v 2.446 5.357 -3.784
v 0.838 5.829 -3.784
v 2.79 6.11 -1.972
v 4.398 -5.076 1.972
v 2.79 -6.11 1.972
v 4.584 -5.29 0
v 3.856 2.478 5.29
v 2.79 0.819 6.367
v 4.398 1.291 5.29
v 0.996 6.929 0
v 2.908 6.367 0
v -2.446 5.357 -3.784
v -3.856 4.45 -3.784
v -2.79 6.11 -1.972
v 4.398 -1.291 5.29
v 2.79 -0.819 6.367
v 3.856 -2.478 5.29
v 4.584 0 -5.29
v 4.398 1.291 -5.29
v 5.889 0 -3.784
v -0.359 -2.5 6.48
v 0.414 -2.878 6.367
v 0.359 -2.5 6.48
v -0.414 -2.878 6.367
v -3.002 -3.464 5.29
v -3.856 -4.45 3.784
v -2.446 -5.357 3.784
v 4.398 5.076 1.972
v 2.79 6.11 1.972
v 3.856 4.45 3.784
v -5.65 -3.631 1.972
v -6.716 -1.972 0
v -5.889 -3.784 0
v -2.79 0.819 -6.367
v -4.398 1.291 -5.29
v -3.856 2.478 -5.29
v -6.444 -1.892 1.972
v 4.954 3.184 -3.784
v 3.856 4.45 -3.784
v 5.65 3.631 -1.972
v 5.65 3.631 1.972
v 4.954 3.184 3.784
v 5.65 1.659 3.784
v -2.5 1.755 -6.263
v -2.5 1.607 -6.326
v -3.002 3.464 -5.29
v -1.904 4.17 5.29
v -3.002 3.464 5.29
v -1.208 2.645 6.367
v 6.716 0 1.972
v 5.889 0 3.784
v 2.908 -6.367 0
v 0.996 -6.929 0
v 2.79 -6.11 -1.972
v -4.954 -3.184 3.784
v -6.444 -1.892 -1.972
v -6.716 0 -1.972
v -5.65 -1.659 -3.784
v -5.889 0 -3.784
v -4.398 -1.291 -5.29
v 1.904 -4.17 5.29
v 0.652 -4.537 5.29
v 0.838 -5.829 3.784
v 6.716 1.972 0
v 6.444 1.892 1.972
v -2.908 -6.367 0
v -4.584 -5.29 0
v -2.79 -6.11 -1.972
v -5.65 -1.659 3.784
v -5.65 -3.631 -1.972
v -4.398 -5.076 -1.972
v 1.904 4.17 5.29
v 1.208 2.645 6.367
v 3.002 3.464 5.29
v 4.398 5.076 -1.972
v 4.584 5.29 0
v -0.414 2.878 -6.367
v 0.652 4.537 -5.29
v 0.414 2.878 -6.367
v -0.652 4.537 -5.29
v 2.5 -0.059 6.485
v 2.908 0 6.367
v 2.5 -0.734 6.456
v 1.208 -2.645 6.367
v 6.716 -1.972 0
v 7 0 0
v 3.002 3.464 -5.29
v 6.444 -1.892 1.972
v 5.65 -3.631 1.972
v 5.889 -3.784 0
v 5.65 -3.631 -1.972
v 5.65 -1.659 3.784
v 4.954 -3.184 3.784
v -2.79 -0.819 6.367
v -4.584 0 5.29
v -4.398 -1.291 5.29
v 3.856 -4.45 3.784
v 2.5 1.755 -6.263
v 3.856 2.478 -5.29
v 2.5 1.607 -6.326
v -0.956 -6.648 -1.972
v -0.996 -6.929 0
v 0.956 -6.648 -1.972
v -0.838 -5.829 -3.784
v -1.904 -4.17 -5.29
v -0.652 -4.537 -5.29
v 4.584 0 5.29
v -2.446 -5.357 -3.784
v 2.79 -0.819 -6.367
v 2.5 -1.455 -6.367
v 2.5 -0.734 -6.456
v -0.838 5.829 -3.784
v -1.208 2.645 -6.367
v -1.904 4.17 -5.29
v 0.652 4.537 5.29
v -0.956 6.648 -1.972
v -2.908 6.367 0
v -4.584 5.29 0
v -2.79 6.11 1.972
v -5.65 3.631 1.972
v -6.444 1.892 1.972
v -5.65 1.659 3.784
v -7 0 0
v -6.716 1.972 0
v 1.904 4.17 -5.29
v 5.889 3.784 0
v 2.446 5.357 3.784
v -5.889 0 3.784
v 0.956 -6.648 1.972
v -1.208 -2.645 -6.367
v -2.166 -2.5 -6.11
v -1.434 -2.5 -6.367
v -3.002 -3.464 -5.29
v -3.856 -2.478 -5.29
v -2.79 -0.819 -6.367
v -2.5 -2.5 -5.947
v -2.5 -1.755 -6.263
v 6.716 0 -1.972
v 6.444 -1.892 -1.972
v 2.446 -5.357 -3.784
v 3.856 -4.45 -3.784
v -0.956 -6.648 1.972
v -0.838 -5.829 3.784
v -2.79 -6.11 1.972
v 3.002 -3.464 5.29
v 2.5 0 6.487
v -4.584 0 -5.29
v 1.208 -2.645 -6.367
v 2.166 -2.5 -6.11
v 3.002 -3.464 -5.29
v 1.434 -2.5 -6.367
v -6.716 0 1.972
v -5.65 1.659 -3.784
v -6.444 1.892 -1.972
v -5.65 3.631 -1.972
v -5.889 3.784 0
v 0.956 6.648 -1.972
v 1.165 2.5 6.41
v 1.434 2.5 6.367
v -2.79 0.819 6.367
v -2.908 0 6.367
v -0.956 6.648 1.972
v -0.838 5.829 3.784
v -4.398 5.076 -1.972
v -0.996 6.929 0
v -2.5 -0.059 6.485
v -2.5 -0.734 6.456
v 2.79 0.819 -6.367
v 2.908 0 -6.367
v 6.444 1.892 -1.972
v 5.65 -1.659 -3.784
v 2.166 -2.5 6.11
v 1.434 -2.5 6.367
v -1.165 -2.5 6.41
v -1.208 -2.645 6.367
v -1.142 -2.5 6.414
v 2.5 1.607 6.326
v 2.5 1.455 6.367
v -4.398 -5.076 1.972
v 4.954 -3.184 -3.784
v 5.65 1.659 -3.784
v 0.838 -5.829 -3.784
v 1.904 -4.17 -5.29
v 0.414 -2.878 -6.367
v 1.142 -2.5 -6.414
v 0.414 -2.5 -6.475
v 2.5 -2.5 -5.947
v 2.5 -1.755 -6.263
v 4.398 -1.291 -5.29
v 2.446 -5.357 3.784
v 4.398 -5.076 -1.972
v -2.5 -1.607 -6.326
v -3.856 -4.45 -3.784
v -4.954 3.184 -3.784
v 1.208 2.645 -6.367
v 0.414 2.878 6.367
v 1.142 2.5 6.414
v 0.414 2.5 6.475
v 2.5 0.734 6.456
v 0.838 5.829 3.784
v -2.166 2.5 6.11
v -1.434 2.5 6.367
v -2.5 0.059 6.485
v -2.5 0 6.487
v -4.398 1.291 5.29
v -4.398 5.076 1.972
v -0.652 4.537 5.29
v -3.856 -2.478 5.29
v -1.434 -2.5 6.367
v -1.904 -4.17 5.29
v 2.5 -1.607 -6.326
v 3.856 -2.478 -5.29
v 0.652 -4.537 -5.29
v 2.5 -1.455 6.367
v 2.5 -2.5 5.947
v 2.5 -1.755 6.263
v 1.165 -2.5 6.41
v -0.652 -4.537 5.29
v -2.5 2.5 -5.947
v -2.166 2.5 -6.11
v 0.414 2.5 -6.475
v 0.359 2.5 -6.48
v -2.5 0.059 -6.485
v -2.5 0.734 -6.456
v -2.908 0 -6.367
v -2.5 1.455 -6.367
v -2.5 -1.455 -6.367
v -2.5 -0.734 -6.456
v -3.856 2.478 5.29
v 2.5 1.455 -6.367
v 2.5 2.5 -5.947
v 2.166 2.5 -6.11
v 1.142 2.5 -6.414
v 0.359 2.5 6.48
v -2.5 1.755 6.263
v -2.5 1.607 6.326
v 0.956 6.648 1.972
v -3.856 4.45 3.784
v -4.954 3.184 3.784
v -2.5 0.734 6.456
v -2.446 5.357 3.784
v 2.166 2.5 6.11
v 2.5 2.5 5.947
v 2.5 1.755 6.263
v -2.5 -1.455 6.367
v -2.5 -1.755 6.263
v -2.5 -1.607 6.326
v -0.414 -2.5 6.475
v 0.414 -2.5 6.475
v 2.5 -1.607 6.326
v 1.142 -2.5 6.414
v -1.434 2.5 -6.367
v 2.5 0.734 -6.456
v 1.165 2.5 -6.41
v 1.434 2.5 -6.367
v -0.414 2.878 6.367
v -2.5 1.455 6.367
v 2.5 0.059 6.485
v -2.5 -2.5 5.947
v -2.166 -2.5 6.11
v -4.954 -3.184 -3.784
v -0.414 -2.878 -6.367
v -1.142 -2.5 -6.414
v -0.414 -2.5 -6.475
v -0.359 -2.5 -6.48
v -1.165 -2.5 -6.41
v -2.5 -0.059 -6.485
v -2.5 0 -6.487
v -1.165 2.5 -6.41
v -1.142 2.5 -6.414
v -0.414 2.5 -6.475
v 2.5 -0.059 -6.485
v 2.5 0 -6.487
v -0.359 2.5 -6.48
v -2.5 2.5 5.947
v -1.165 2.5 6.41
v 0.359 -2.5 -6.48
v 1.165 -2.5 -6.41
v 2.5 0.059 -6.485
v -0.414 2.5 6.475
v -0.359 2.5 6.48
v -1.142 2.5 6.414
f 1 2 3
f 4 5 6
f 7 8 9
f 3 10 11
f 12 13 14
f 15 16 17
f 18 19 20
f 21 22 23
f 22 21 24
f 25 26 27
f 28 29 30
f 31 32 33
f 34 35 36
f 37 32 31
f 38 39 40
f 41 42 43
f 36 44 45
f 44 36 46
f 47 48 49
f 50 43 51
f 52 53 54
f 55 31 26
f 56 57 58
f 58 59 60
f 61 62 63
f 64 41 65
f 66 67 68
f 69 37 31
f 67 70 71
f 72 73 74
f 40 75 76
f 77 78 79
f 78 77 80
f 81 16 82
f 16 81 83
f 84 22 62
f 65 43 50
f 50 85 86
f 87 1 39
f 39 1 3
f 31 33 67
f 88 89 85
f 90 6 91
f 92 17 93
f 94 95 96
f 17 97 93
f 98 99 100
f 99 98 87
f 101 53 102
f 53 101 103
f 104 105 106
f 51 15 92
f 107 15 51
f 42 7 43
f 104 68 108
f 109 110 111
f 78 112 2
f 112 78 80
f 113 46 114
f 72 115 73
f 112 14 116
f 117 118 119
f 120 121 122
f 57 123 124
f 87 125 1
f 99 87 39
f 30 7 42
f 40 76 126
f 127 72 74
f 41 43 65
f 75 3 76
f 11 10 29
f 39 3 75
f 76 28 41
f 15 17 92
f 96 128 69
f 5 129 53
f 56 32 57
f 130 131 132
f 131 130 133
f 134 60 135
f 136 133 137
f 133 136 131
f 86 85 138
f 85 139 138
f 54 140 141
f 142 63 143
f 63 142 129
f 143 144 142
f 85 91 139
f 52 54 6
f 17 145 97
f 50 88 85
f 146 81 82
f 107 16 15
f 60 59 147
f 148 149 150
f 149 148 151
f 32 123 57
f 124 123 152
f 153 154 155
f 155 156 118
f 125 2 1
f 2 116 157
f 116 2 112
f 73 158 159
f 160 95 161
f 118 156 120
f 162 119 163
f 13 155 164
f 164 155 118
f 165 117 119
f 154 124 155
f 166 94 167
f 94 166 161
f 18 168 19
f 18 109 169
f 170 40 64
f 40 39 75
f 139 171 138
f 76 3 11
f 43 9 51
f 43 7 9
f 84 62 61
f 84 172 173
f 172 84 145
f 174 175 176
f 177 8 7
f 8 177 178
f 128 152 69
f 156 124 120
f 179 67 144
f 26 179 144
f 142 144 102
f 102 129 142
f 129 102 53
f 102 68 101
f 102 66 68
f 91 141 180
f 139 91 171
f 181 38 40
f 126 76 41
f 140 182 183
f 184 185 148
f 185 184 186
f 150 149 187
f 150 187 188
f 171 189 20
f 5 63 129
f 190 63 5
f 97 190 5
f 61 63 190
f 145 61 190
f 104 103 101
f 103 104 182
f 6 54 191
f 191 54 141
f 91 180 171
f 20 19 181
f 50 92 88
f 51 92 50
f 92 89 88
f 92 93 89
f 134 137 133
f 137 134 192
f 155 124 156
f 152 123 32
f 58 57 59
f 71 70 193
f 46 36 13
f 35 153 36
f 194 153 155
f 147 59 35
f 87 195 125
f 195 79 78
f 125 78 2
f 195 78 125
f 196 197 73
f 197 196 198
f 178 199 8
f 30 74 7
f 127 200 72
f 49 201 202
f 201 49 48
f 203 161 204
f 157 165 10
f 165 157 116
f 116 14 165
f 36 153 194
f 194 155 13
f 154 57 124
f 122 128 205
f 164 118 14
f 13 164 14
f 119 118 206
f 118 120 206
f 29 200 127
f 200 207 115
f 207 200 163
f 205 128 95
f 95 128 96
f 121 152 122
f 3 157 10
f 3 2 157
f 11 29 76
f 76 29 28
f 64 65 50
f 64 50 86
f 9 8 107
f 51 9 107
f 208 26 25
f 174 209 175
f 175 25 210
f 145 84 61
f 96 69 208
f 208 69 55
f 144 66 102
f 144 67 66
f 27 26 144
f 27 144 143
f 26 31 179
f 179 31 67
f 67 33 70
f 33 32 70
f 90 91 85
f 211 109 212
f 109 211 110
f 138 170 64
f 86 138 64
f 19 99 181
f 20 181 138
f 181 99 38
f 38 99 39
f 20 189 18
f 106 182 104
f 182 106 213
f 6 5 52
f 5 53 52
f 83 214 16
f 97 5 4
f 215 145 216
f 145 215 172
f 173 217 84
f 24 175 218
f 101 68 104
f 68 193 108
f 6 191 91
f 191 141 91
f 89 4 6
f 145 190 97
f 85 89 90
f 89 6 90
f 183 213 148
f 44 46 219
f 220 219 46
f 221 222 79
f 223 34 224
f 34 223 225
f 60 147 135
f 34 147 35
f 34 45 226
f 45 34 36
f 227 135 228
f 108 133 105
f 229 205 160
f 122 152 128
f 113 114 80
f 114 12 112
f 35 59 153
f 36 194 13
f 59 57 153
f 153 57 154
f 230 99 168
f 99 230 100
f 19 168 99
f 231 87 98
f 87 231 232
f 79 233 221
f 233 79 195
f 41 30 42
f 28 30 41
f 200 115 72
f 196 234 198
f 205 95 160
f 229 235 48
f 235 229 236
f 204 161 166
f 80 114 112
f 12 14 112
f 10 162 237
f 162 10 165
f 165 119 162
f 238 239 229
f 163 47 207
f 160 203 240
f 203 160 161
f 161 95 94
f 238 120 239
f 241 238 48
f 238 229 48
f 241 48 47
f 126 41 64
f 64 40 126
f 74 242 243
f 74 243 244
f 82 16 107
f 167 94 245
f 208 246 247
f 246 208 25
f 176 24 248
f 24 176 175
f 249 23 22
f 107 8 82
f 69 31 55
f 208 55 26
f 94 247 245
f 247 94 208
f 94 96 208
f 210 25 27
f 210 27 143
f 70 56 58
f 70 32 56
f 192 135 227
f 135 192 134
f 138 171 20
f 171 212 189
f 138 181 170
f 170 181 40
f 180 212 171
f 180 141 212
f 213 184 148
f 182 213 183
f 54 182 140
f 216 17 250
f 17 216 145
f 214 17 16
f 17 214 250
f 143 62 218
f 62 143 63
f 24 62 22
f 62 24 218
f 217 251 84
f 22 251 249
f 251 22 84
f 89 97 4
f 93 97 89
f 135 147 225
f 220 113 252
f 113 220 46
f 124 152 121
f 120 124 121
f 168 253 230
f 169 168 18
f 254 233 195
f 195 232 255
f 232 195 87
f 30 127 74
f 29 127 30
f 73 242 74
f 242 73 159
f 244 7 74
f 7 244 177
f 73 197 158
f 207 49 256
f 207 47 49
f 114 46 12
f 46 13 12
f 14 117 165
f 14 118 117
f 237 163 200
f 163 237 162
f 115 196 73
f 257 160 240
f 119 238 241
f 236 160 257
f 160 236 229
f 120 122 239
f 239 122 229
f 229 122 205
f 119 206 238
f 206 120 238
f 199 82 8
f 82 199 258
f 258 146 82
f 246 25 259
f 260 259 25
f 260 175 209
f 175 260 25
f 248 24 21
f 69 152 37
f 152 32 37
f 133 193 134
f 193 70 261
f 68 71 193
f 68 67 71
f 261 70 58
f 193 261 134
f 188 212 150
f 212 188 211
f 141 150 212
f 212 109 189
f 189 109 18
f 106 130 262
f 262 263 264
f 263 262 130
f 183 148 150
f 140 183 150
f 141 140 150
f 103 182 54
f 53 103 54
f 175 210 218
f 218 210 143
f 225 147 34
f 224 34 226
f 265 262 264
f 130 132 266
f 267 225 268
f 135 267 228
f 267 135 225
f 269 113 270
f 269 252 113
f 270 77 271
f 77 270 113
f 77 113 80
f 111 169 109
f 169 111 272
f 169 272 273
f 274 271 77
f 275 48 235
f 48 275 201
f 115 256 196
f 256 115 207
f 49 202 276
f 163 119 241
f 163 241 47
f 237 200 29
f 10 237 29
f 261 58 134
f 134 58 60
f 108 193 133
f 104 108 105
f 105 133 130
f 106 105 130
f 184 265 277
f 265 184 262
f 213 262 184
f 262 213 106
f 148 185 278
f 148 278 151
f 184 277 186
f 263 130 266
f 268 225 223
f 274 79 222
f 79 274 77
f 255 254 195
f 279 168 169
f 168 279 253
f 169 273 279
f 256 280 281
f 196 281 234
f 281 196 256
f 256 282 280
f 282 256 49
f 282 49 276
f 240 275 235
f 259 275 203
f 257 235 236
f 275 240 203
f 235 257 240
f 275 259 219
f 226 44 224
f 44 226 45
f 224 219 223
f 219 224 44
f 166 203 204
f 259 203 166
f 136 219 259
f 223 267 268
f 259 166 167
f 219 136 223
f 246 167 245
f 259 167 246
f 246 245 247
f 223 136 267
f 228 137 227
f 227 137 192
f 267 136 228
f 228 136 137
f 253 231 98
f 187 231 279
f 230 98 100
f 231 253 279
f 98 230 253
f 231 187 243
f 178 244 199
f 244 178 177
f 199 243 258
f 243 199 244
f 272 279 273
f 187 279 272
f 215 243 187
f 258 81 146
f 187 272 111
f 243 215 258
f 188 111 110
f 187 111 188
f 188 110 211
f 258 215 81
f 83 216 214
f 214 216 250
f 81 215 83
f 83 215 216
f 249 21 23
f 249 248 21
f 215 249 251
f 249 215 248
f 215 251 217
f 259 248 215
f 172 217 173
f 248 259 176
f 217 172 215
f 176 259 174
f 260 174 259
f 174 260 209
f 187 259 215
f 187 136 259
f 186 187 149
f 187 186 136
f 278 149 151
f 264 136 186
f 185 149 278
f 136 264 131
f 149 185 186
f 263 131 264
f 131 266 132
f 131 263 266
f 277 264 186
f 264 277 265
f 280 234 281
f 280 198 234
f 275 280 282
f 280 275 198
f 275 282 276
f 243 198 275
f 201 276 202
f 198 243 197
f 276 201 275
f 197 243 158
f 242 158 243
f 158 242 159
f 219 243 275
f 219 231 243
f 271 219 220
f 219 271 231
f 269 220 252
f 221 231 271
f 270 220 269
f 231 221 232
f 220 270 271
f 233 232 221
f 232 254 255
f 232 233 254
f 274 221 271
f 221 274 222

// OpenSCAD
difference() {
  sphere(7, center=true);
  cube([5, 5, 20], center=true);
}
